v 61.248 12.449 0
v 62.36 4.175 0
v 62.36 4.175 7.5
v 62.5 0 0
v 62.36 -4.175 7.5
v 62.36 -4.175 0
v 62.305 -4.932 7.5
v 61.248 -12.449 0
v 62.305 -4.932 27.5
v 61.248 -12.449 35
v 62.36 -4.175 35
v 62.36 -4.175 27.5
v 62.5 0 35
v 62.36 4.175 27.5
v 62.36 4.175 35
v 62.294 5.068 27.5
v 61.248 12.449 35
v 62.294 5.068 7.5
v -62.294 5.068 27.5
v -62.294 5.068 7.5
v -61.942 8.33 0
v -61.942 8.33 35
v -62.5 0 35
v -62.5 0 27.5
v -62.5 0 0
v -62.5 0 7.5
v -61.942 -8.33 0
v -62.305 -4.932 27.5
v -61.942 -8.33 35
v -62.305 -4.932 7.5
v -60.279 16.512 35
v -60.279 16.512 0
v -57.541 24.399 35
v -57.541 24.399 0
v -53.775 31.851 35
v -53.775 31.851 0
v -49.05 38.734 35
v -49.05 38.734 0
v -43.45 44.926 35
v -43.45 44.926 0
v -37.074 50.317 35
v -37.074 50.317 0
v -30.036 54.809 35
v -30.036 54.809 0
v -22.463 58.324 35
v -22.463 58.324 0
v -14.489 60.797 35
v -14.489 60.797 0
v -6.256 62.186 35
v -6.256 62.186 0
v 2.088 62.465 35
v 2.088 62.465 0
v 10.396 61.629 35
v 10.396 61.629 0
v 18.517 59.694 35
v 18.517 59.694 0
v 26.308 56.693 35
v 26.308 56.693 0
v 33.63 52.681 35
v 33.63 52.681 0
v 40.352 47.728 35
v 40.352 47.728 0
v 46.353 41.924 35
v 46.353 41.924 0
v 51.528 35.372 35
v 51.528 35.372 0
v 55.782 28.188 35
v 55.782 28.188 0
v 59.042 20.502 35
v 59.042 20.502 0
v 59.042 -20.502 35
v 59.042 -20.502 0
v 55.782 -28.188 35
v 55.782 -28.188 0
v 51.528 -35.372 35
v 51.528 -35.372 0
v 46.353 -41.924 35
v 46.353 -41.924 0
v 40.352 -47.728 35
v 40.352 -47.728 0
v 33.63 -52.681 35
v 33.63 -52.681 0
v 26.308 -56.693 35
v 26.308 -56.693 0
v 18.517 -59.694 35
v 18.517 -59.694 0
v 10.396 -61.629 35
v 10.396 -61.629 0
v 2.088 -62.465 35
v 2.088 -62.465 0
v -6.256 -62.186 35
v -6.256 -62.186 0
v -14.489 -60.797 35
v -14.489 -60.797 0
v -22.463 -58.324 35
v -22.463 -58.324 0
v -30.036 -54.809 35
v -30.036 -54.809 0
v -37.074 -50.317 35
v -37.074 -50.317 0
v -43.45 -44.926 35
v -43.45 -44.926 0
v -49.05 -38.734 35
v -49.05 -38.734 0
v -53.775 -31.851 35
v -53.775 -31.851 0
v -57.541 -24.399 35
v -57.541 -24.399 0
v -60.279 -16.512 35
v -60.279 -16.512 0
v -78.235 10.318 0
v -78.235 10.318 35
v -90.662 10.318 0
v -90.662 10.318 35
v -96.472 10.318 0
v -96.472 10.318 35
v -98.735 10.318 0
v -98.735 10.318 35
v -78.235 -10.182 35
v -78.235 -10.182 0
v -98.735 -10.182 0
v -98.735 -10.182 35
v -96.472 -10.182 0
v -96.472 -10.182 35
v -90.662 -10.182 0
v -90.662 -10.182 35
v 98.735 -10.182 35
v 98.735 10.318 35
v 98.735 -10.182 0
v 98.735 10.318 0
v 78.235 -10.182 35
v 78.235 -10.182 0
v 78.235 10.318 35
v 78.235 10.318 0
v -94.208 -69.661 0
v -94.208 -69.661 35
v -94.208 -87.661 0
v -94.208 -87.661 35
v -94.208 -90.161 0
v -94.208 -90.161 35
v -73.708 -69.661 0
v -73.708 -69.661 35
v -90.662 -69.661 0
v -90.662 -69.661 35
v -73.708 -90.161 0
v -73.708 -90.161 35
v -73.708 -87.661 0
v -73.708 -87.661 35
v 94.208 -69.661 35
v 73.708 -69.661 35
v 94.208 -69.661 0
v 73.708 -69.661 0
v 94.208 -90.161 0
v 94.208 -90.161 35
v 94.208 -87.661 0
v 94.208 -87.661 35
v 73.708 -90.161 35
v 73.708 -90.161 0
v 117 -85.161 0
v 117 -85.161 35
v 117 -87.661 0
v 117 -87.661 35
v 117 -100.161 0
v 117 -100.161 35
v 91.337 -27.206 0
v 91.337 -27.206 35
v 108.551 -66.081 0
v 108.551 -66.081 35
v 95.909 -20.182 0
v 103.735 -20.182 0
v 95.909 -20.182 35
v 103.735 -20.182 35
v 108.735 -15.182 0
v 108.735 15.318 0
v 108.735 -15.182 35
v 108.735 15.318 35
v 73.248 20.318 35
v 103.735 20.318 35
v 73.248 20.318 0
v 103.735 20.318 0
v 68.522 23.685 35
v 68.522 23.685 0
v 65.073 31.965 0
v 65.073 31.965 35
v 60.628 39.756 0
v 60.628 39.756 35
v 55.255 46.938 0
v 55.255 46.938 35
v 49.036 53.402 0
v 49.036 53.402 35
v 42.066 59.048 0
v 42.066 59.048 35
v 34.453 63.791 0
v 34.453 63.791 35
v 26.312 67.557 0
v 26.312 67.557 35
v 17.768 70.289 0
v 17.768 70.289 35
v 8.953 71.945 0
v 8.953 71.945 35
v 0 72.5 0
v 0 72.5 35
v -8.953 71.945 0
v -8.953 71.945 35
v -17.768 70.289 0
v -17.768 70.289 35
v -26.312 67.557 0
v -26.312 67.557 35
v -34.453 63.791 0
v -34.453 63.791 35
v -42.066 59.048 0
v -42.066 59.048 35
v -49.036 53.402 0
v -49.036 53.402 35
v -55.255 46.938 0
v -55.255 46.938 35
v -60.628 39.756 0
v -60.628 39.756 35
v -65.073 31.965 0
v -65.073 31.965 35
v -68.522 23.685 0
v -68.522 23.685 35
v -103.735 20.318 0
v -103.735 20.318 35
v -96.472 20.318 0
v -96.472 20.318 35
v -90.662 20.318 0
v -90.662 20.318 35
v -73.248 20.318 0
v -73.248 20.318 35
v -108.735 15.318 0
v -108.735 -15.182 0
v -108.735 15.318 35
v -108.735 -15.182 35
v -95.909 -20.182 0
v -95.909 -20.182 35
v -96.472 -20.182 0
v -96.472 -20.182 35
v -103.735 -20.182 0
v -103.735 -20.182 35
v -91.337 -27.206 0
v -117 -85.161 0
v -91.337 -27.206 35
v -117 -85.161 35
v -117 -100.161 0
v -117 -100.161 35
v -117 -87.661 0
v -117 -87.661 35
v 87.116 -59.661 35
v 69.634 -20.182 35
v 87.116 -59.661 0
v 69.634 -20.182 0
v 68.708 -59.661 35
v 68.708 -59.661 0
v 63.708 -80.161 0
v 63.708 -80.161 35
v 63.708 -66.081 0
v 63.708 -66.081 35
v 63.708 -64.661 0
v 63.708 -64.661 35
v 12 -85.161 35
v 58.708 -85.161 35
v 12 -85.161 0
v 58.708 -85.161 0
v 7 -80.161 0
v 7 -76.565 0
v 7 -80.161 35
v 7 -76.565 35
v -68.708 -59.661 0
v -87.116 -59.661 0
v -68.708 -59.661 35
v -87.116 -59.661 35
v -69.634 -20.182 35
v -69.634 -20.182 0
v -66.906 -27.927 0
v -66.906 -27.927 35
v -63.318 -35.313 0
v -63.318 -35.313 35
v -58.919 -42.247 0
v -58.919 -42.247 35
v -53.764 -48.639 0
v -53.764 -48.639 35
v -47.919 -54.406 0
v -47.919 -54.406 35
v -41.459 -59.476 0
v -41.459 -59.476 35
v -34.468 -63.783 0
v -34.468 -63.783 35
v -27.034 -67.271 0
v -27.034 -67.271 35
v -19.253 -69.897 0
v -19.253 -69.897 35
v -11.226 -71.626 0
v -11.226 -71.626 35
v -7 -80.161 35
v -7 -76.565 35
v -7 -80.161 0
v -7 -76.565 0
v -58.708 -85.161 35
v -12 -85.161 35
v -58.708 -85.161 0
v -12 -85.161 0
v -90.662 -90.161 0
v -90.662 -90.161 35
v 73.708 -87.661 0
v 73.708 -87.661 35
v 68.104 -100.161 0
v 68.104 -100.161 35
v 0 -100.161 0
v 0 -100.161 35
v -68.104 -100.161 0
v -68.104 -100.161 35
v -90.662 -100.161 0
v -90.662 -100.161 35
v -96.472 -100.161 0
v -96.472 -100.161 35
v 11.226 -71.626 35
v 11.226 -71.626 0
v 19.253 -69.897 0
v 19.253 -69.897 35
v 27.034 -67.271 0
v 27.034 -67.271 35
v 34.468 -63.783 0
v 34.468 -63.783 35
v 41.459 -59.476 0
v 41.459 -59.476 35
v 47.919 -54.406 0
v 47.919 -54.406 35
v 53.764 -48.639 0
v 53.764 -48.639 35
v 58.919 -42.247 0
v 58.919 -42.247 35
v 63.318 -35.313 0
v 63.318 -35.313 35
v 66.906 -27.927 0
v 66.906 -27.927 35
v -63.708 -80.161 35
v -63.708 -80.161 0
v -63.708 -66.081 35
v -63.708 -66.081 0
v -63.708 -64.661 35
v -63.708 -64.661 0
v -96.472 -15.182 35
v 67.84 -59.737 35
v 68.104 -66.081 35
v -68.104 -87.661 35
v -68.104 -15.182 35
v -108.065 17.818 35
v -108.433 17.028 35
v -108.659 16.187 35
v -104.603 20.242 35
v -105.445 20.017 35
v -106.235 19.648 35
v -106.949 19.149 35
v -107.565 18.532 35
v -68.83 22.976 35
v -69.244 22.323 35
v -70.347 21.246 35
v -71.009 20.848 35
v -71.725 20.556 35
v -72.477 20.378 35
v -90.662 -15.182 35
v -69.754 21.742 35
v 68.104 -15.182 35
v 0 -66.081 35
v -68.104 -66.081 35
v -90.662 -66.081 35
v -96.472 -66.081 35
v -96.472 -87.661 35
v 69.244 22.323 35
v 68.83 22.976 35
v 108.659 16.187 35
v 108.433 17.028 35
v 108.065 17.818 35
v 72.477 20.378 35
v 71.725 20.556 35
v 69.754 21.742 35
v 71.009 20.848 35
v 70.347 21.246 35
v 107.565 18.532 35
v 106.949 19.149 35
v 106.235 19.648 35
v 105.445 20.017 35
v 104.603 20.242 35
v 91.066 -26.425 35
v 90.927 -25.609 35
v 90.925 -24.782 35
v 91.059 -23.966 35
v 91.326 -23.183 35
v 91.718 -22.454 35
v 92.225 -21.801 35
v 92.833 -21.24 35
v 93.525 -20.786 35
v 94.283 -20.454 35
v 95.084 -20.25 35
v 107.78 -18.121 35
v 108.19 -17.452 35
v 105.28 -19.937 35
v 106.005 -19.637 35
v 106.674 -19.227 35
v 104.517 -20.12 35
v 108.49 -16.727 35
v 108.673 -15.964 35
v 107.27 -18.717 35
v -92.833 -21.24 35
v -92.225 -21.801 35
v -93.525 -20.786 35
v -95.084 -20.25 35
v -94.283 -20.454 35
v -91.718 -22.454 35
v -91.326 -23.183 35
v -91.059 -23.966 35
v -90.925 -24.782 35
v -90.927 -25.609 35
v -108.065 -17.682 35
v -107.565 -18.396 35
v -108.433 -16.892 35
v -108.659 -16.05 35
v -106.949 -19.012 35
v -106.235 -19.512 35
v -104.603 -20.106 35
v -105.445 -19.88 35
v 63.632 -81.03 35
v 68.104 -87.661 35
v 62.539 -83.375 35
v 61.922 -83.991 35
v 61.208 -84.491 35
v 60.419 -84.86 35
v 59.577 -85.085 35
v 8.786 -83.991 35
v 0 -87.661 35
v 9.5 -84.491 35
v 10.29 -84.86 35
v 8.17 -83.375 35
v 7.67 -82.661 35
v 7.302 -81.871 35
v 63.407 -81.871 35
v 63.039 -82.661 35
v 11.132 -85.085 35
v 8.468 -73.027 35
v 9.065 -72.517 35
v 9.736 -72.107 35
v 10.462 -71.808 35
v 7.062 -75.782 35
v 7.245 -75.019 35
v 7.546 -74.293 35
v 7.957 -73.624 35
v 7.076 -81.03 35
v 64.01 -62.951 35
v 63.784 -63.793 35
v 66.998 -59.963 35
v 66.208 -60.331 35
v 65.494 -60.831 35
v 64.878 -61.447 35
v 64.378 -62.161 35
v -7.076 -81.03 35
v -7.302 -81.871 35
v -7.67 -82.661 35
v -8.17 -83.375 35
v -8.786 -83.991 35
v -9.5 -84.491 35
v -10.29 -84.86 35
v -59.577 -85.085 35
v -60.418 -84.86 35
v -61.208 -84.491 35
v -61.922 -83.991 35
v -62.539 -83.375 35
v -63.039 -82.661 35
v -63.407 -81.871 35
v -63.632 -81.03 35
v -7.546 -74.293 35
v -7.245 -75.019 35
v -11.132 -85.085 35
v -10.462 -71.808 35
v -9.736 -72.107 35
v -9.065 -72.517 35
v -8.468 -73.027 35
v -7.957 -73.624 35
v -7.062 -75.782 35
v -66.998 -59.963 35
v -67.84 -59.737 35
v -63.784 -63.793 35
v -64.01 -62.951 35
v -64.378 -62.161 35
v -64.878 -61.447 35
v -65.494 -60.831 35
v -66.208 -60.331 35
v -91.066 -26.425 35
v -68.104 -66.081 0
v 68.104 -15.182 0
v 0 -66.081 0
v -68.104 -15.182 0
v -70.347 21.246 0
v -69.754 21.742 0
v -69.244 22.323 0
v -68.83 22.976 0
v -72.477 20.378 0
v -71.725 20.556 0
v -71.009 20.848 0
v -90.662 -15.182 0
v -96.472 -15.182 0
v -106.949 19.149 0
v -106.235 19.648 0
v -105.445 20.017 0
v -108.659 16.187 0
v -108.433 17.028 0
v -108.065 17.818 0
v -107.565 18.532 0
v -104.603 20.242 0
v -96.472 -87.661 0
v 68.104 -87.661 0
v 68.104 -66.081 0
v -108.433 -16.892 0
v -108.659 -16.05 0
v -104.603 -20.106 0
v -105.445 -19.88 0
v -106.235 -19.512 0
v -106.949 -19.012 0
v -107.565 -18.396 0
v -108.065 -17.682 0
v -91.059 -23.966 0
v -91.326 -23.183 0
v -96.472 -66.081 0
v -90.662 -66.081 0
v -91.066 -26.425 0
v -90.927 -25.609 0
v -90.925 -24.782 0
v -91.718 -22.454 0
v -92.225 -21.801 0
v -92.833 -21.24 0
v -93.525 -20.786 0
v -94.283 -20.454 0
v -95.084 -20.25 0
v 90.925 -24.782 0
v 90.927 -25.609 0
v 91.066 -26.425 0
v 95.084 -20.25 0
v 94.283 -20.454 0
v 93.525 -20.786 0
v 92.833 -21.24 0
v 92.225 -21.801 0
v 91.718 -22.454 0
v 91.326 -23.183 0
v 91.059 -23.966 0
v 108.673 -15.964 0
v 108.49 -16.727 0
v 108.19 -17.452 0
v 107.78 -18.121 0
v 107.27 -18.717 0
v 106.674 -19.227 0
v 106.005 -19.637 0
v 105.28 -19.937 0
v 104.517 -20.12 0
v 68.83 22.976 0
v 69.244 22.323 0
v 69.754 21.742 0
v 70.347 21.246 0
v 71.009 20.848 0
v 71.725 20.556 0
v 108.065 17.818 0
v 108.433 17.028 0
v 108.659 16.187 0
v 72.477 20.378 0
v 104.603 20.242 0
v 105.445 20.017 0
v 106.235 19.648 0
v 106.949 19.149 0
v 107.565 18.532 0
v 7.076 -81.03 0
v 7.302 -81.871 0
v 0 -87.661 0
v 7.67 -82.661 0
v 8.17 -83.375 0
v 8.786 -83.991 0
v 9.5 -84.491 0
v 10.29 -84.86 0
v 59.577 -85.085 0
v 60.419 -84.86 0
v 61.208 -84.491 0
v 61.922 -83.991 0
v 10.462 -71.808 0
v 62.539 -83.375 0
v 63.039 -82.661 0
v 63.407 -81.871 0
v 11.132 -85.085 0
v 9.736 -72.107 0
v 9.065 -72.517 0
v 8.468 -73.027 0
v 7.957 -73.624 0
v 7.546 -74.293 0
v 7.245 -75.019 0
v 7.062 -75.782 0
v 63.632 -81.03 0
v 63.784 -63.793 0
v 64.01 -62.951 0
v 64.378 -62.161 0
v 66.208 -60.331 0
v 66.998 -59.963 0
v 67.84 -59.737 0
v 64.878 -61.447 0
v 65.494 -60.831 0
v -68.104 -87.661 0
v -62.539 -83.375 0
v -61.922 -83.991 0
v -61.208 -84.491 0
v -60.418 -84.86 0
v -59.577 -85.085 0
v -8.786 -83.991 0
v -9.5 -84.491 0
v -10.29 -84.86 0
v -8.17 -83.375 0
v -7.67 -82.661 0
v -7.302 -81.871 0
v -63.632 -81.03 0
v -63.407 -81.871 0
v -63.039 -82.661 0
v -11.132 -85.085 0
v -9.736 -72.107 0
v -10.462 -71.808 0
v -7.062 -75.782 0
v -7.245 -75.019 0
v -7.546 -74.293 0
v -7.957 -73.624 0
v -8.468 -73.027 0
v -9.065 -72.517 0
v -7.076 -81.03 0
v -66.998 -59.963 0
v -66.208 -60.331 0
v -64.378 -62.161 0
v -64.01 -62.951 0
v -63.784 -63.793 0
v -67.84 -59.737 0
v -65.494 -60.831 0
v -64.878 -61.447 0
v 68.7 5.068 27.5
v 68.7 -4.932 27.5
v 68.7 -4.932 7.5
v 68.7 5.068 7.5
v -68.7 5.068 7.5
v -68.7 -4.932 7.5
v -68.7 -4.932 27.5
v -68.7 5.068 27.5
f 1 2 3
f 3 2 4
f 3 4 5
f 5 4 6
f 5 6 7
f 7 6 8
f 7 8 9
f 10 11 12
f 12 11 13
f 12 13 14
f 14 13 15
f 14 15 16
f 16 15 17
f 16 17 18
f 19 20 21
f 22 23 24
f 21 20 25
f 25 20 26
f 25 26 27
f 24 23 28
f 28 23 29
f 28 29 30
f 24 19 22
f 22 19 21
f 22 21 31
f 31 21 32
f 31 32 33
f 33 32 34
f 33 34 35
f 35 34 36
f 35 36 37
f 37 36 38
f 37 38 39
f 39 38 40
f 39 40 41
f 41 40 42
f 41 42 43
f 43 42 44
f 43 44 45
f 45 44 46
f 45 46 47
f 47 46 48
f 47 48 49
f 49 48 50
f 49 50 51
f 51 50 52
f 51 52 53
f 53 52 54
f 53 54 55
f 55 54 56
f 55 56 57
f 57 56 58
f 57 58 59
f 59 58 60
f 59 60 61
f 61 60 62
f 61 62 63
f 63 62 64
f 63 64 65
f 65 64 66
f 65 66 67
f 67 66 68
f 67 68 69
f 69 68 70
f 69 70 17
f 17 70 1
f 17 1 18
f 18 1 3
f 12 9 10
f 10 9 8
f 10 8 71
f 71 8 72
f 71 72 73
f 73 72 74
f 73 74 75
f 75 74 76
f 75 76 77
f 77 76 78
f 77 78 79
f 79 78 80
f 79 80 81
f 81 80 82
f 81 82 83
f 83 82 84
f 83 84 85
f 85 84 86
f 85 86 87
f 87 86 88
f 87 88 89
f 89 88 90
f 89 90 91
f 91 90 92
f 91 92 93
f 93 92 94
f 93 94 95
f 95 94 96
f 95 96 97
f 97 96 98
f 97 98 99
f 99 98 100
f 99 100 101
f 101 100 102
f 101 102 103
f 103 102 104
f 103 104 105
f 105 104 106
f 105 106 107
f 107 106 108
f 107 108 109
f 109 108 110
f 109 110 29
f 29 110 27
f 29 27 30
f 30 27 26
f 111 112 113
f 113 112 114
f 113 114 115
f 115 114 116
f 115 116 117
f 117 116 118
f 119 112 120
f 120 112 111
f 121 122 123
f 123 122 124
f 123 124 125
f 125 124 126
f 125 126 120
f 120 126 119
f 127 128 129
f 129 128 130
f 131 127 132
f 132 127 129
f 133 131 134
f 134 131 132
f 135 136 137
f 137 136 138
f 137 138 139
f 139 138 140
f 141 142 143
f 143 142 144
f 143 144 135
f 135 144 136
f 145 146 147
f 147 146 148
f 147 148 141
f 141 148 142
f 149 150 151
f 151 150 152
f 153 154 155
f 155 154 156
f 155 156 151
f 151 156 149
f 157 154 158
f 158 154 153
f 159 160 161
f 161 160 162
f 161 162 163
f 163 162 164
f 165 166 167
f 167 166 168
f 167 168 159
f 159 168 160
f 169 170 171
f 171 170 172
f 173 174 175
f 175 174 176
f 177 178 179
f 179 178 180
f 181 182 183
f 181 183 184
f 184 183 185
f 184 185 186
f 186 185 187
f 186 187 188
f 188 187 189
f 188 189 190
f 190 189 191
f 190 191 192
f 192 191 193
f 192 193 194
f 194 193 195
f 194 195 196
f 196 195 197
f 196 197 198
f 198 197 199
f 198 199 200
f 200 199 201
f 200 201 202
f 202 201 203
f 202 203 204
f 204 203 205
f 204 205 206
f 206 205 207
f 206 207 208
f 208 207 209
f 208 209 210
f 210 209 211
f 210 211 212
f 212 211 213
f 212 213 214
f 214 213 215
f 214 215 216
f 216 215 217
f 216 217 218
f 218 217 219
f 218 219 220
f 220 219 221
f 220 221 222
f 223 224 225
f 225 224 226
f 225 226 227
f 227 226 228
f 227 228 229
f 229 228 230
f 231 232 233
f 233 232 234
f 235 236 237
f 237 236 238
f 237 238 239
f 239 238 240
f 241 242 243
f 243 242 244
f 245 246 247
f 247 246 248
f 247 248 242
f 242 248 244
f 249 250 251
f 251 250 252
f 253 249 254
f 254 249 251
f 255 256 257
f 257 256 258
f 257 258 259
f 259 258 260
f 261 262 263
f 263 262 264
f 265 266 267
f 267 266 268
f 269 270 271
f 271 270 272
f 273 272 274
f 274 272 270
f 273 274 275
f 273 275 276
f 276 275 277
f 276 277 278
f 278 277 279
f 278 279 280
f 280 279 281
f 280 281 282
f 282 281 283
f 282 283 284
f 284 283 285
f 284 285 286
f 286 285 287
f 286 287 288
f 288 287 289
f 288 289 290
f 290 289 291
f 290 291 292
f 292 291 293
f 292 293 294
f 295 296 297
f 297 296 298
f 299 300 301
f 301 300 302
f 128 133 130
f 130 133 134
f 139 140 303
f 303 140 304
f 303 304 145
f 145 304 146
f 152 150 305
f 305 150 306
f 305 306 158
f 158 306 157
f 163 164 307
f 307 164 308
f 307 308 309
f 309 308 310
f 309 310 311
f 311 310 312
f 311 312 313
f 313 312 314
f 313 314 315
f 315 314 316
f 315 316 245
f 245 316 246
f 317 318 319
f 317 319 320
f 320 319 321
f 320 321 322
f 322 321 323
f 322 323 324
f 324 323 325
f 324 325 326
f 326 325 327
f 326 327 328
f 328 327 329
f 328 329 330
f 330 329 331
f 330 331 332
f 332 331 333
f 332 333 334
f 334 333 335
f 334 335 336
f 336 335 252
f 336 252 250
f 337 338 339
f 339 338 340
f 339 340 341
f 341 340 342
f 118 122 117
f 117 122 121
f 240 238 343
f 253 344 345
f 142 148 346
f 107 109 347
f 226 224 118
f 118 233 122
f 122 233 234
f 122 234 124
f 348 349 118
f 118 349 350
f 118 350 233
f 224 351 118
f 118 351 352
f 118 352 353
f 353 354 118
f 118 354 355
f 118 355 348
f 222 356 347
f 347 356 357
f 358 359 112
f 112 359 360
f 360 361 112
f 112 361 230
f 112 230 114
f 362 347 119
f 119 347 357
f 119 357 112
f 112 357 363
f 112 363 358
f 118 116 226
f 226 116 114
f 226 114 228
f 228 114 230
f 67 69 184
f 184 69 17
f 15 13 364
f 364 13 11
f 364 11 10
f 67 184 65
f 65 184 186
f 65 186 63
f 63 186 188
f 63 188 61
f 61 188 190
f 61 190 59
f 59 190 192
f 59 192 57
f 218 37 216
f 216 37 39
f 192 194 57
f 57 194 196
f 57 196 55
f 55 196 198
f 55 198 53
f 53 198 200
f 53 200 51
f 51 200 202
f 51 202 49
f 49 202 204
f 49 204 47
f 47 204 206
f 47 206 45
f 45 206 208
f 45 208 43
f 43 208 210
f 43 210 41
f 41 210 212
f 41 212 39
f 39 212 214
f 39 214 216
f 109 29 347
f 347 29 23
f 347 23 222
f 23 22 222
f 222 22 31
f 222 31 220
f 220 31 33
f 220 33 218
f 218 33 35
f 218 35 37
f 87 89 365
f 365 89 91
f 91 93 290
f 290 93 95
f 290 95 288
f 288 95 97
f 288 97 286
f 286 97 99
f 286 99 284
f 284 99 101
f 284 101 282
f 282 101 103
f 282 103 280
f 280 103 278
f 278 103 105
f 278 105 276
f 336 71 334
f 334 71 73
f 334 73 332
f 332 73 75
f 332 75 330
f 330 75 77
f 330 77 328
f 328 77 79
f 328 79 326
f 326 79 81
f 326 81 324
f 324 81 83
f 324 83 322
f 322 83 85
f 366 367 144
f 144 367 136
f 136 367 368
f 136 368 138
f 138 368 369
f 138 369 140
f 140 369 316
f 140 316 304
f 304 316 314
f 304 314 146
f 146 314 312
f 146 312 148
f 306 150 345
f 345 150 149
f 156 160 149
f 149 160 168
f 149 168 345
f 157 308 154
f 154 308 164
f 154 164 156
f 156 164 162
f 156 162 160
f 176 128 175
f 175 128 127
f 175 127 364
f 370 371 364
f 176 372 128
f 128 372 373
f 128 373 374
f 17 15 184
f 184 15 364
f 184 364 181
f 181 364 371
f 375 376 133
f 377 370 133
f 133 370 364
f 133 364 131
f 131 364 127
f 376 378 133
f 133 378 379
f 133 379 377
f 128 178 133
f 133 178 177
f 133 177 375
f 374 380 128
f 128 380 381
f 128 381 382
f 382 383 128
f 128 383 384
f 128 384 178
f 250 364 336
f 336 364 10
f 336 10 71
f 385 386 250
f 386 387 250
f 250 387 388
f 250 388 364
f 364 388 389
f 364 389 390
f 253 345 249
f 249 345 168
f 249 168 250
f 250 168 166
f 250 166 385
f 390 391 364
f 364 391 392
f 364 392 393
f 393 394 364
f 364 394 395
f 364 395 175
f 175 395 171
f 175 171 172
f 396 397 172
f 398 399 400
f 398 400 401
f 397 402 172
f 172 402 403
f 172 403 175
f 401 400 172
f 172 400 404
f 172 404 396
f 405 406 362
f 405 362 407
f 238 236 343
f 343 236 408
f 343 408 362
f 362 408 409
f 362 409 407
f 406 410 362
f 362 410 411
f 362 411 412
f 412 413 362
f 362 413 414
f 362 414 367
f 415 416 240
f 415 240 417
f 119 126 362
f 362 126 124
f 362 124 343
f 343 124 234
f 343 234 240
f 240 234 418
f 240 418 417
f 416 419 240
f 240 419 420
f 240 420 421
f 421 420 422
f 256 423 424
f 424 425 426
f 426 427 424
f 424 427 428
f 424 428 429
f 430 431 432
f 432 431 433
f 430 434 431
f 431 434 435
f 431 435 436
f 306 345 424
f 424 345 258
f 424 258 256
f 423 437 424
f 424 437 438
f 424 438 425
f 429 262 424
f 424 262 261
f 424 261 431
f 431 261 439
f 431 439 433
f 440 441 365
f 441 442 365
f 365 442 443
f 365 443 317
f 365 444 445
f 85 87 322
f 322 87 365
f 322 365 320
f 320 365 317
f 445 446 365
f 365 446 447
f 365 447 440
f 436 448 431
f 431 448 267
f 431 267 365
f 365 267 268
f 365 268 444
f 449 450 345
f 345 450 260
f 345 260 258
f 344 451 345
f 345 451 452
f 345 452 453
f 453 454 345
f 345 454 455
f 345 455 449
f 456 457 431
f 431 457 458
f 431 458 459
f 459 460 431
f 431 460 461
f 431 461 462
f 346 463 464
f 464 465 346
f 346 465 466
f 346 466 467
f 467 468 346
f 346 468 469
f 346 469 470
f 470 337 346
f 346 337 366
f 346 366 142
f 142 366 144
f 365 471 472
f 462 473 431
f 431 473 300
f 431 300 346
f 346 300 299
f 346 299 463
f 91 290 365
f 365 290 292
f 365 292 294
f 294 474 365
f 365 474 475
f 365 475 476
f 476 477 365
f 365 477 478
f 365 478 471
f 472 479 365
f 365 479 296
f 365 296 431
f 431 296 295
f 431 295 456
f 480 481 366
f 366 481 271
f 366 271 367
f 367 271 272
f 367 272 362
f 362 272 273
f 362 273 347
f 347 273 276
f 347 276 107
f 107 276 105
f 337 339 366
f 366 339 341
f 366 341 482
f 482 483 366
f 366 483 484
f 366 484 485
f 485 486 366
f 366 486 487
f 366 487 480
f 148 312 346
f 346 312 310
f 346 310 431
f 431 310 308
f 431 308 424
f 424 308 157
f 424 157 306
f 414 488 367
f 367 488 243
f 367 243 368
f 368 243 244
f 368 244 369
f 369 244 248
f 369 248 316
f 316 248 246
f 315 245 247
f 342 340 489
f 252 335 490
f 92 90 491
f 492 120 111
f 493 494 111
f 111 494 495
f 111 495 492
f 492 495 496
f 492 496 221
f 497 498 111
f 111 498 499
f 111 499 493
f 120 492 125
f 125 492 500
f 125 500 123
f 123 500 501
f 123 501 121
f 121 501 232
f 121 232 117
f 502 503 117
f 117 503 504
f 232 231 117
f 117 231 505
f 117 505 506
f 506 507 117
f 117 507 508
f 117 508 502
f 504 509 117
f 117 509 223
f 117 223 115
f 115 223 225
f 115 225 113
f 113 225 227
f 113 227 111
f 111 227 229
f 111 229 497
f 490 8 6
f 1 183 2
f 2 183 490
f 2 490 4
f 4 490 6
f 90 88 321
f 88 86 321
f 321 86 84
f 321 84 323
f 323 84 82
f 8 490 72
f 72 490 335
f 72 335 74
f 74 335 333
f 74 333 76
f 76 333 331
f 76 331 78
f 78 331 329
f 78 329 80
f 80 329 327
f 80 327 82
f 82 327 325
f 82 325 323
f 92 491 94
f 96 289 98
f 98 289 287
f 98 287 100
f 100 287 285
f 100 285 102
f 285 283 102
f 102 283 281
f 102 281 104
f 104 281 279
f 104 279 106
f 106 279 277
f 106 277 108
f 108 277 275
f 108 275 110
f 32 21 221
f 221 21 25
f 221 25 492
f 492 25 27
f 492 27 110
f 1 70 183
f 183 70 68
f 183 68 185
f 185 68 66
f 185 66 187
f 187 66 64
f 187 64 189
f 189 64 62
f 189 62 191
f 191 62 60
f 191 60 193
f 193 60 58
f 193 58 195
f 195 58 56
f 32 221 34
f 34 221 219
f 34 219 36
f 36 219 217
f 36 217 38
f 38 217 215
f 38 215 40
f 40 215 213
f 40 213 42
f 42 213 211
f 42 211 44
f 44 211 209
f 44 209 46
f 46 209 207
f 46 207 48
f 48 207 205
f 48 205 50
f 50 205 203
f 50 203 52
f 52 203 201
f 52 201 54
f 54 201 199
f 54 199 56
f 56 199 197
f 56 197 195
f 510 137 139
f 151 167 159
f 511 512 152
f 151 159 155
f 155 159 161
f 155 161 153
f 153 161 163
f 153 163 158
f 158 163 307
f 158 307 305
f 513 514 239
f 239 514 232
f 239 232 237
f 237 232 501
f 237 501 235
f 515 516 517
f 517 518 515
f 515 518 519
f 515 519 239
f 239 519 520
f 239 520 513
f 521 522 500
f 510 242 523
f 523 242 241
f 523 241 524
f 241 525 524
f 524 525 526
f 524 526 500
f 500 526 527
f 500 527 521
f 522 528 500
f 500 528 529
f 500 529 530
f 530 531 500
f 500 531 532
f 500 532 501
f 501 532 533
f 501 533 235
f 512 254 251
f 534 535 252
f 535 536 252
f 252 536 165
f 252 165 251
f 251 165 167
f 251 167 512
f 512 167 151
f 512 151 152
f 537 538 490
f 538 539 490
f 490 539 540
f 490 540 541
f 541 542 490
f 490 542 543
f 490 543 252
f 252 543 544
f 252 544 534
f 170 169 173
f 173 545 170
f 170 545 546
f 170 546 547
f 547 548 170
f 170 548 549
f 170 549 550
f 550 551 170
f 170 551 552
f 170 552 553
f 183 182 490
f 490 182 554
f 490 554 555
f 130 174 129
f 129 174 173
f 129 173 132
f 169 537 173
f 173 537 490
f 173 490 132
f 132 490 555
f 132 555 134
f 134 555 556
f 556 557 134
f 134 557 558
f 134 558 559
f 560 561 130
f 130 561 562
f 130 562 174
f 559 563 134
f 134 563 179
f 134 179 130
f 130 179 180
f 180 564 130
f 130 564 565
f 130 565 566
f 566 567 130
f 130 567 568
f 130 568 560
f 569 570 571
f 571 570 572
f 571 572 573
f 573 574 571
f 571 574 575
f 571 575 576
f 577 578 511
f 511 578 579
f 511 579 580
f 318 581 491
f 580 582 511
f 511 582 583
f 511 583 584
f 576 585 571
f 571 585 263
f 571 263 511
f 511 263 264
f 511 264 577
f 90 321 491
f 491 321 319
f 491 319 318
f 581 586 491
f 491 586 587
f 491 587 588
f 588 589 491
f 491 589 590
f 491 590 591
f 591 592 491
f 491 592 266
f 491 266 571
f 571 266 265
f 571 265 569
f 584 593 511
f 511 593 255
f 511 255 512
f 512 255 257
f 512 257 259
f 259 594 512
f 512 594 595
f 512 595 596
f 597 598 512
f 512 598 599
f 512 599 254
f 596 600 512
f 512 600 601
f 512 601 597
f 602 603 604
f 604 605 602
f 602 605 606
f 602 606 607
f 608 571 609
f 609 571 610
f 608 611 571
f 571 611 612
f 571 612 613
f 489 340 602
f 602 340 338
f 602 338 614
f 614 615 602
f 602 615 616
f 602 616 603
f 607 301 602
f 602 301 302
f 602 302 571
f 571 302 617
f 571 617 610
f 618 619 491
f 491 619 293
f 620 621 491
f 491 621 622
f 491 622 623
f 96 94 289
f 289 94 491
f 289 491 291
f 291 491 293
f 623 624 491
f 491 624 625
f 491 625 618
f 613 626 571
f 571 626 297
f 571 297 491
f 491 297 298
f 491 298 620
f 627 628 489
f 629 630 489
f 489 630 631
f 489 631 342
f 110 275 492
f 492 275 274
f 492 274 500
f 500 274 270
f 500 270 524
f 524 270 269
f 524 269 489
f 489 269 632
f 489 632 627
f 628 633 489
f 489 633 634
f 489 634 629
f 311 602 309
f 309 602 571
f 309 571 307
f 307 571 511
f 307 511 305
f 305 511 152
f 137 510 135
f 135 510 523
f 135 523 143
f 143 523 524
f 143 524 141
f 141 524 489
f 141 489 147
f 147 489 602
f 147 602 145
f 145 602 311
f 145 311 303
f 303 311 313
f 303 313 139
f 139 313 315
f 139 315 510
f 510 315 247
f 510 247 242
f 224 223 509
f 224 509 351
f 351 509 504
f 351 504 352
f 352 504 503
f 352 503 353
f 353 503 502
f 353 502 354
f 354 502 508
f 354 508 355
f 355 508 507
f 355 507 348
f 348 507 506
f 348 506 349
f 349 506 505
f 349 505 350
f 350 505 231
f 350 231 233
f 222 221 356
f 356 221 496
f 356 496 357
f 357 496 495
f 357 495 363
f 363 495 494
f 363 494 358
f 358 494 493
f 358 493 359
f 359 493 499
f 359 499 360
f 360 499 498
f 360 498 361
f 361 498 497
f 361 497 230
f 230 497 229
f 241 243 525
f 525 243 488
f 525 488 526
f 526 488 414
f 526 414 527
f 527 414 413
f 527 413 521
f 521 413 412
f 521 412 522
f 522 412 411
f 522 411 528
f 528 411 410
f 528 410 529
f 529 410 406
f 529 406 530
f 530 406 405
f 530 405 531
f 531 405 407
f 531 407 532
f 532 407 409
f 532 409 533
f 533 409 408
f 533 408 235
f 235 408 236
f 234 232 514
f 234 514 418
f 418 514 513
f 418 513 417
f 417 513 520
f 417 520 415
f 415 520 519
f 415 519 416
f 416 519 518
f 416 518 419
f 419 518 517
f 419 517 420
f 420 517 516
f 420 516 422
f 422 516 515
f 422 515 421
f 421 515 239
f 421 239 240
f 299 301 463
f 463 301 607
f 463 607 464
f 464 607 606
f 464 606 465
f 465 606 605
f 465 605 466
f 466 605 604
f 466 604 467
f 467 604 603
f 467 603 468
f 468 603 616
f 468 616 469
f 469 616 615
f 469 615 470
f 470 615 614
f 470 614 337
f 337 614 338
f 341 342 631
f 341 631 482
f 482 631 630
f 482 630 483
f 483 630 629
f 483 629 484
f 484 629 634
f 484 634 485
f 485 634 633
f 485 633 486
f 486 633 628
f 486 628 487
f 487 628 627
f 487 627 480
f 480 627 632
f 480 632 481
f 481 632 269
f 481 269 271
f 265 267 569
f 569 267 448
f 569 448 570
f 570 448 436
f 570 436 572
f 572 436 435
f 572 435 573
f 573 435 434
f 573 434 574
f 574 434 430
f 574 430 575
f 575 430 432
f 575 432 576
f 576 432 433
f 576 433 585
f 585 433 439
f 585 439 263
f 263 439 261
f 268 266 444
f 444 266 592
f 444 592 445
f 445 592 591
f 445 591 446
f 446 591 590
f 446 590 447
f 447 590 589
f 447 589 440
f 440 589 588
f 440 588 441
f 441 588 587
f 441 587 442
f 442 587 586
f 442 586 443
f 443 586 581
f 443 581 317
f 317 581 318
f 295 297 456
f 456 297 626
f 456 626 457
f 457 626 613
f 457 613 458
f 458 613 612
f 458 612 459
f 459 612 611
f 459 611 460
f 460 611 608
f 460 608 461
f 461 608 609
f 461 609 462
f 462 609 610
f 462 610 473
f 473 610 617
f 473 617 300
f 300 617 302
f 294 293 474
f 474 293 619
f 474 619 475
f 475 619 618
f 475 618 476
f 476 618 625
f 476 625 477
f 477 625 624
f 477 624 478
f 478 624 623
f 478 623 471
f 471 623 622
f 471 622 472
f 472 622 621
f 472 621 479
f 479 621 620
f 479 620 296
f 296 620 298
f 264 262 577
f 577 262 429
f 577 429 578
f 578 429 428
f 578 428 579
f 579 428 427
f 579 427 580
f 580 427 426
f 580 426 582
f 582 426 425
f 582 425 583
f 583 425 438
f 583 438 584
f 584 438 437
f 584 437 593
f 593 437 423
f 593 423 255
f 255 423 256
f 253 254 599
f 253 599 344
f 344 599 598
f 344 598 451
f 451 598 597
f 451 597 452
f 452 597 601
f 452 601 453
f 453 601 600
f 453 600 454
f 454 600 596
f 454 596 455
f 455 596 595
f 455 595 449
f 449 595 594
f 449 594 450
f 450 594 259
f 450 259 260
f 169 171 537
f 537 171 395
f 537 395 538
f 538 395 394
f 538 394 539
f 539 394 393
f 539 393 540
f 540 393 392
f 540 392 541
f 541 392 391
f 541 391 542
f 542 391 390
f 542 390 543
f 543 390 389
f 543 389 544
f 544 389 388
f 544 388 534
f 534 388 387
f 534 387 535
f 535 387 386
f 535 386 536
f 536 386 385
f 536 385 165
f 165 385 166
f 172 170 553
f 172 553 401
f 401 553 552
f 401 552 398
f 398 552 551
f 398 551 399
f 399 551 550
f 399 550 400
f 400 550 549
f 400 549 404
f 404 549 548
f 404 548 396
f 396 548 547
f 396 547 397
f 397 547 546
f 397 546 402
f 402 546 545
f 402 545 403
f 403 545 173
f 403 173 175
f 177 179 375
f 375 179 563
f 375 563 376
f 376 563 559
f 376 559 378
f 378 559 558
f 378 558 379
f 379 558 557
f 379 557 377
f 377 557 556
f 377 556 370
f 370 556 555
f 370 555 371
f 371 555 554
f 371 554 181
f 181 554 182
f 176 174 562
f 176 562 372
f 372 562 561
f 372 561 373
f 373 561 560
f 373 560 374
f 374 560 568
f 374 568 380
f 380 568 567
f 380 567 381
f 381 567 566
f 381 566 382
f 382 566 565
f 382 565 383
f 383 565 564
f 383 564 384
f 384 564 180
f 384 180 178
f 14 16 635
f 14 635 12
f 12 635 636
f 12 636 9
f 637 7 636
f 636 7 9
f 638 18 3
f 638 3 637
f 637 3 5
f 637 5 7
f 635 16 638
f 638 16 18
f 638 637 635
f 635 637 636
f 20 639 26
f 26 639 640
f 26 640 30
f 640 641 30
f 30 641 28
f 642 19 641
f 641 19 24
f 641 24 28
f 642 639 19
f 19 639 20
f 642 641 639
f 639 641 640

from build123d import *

# Parameters (mm, degrees)
SKETCH1_W           = 20.5
SKETCH1_H           = 20.5
SKETCH1_R           = 62.5
BOSS_EXTRUDE1_DEPTH = 35
FILLET2_R           = 5
SKETCH2_W           = 20
SKETCH2_H           = 10
CUT_EXTRUDE2_DEPTH  = 7
SKETCH3_W           = 20
SKETCH3_H           = 10
CUT_EXTRUDE3_DEPTH  = 7


with BuildPart() as part:
    # Sketch1 → Boss-Extrude1 (new body)
    with BuildSketch(Plane.XY):
        with BuildLine():
            Line((117, -100.161277705), (117, -85.161277705))
            Line((117, -85.161277705), (88.226517383, -20.181680312))
            Line((88.226517383, -20.181680312), (108.734784021, -20.181680312))
            Line((108.734784021, -20.181680312), (108.734784021, 20.318319688))
            Line((108.734784021, 20.318319688), (69.594654141, 20.318319688))
            ThreePointArc((69.594654141, 20.318319688), (0, 72.5), (-69.594654141, 20.318319688))
            Line((-69.594654141, 20.318319688), (-108.734784021, 20.318319688))
            Line((-108.734784021, 20.318319688), (-108.734784021, -20.181680312))
            Line((-108.734784021, -20.181680312), (-88.226517383, -20.181680312))
            Line((-88.226517383, -20.181680312), (-117, -85.161277705))
            Line((-117, -85.161277705), (-117, -100.161277705))
            Line((-117, -100.161277705), (117, -100.161277705))
        make_face()
        with Locations((83.958397156, -79.911277705)):
            Rectangle(SKETCH1_W, SKETCH1_H, mode=Mode.SUBTRACT)
        with Locations((-83.958397156, -79.911277705)):
            Rectangle(SKETCH1_W, SKETCH1_H, mode=Mode.SUBTRACT)
        with BuildLine():
            Line((-63.708397156, -59.661277705), (-87.116280609, -59.661277705))
            Line((-87.116280609, -59.661277705), (-69.634400836, -20.181680312))
            ThreePointArc((-69.634400836, -20.181680312), (-46.29986484, -55.79043391), (-7, -72.161277705))
            Line((-7, -72.161277705), (-7, -85.161277705))
            Line((-7, -85.161277705), (-63.708397156, -85.161277705))
            Line((-63.708397156, -85.161277705), (-63.708397156, -59.661277705))
        make_face(mode=Mode.SUBTRACT)
        with BuildLine():
            Line((87.116280609, -59.661277705), (63.708397156, -59.661277705))
            Line((63.708397156, -59.661277705), (63.708397156, -85.161277705))
            Line((63.708397156, -85.161277705), (7, -85.161277705))
            Line((7, -85.161277705), (7, -72.161277705))
            ThreePointArc((7, -72.161277705), (46.29986484, -55.79043391), (69.634400836, -20.181680312))
            Line((69.634400836, -20.181680312), (87.116280609, -59.661277705))
        make_face(mode=Mode.SUBTRACT)
        with Locations((-88.484784021, 0.068319688)):
            Rectangle(SKETCH1_W, SKETCH1_H, mode=Mode.SUBTRACT)
        Circle(SKETCH1_R, mode=Mode.SUBTRACT)
        with Locations((88.484784021, 0.068319688)):
            Rectangle(SKETCH1_W, SKETCH1_H, mode=Mode.SUBTRACT)
    extrude(amount=BOSS_EXTRUDE1_DEPTH)

    # Fillet2
    fillet2_edges = [part.edges().sort_by_distance(p)[0] for p in [
        (-88.226517383, -20.181680312, 17.5),
        (-108.734784021, -20.181680312, 17.5),
        (-108.734784021, 20.318319688, 17.5),
        (-69.594654141, 20.318319688, 17.5),
        (69.594654141, 20.318319688, 17.5),
        (108.734784021, 20.318319688, 17.5),
        (108.734784021, -20.181680312, 17.5),
        (88.226517383, -20.181680312, 17.5),
        (7, -72.161277705, 17.5),
        (7, -85.161277705, 17.5),
        (63.708397156, -85.161277705, 17.5),
        (63.708397156, -59.661277705, 17.5),
        (-63.708397156, -59.661277705, 17.5),
        (-63.708397156, -85.161277705, 17.5),
        (-7, -85.161277705, 17.5),
        (-7, -72.161277705, 17.5),
    ]]
    fillet(fillet2_edges, radius=FILLET2_R)

    # Sketch2 → Cut-Extrude2 (cut)
    with BuildSketch(Plane(origin=(61.7, 0, 0), x_dir=(0, 0, -1), z_dir=(1, 0, 0))):
        with Locations((-17.5, 0.068319688)):
            Rectangle(SKETCH2_W, SKETCH2_H)
    extrude(amount=CUT_EXTRUDE2_DEPTH, mode=Mode.SUBTRACT)

    # Sketch3 → Cut-Extrude3 (cut)
    with BuildSketch(Plane(origin=(-61.7, 0, 0), x_dir=(0, 0, -1), z_dir=(1, 0, 0))):
        with Locations((-17.5, 0.068319688)):
            Rectangle(SKETCH3_W, SKETCH3_H)
    extrude(amount=-CUT_EXTRUDE3_DEPTH, mode=Mode.SUBTRACT)


solid = part.part
